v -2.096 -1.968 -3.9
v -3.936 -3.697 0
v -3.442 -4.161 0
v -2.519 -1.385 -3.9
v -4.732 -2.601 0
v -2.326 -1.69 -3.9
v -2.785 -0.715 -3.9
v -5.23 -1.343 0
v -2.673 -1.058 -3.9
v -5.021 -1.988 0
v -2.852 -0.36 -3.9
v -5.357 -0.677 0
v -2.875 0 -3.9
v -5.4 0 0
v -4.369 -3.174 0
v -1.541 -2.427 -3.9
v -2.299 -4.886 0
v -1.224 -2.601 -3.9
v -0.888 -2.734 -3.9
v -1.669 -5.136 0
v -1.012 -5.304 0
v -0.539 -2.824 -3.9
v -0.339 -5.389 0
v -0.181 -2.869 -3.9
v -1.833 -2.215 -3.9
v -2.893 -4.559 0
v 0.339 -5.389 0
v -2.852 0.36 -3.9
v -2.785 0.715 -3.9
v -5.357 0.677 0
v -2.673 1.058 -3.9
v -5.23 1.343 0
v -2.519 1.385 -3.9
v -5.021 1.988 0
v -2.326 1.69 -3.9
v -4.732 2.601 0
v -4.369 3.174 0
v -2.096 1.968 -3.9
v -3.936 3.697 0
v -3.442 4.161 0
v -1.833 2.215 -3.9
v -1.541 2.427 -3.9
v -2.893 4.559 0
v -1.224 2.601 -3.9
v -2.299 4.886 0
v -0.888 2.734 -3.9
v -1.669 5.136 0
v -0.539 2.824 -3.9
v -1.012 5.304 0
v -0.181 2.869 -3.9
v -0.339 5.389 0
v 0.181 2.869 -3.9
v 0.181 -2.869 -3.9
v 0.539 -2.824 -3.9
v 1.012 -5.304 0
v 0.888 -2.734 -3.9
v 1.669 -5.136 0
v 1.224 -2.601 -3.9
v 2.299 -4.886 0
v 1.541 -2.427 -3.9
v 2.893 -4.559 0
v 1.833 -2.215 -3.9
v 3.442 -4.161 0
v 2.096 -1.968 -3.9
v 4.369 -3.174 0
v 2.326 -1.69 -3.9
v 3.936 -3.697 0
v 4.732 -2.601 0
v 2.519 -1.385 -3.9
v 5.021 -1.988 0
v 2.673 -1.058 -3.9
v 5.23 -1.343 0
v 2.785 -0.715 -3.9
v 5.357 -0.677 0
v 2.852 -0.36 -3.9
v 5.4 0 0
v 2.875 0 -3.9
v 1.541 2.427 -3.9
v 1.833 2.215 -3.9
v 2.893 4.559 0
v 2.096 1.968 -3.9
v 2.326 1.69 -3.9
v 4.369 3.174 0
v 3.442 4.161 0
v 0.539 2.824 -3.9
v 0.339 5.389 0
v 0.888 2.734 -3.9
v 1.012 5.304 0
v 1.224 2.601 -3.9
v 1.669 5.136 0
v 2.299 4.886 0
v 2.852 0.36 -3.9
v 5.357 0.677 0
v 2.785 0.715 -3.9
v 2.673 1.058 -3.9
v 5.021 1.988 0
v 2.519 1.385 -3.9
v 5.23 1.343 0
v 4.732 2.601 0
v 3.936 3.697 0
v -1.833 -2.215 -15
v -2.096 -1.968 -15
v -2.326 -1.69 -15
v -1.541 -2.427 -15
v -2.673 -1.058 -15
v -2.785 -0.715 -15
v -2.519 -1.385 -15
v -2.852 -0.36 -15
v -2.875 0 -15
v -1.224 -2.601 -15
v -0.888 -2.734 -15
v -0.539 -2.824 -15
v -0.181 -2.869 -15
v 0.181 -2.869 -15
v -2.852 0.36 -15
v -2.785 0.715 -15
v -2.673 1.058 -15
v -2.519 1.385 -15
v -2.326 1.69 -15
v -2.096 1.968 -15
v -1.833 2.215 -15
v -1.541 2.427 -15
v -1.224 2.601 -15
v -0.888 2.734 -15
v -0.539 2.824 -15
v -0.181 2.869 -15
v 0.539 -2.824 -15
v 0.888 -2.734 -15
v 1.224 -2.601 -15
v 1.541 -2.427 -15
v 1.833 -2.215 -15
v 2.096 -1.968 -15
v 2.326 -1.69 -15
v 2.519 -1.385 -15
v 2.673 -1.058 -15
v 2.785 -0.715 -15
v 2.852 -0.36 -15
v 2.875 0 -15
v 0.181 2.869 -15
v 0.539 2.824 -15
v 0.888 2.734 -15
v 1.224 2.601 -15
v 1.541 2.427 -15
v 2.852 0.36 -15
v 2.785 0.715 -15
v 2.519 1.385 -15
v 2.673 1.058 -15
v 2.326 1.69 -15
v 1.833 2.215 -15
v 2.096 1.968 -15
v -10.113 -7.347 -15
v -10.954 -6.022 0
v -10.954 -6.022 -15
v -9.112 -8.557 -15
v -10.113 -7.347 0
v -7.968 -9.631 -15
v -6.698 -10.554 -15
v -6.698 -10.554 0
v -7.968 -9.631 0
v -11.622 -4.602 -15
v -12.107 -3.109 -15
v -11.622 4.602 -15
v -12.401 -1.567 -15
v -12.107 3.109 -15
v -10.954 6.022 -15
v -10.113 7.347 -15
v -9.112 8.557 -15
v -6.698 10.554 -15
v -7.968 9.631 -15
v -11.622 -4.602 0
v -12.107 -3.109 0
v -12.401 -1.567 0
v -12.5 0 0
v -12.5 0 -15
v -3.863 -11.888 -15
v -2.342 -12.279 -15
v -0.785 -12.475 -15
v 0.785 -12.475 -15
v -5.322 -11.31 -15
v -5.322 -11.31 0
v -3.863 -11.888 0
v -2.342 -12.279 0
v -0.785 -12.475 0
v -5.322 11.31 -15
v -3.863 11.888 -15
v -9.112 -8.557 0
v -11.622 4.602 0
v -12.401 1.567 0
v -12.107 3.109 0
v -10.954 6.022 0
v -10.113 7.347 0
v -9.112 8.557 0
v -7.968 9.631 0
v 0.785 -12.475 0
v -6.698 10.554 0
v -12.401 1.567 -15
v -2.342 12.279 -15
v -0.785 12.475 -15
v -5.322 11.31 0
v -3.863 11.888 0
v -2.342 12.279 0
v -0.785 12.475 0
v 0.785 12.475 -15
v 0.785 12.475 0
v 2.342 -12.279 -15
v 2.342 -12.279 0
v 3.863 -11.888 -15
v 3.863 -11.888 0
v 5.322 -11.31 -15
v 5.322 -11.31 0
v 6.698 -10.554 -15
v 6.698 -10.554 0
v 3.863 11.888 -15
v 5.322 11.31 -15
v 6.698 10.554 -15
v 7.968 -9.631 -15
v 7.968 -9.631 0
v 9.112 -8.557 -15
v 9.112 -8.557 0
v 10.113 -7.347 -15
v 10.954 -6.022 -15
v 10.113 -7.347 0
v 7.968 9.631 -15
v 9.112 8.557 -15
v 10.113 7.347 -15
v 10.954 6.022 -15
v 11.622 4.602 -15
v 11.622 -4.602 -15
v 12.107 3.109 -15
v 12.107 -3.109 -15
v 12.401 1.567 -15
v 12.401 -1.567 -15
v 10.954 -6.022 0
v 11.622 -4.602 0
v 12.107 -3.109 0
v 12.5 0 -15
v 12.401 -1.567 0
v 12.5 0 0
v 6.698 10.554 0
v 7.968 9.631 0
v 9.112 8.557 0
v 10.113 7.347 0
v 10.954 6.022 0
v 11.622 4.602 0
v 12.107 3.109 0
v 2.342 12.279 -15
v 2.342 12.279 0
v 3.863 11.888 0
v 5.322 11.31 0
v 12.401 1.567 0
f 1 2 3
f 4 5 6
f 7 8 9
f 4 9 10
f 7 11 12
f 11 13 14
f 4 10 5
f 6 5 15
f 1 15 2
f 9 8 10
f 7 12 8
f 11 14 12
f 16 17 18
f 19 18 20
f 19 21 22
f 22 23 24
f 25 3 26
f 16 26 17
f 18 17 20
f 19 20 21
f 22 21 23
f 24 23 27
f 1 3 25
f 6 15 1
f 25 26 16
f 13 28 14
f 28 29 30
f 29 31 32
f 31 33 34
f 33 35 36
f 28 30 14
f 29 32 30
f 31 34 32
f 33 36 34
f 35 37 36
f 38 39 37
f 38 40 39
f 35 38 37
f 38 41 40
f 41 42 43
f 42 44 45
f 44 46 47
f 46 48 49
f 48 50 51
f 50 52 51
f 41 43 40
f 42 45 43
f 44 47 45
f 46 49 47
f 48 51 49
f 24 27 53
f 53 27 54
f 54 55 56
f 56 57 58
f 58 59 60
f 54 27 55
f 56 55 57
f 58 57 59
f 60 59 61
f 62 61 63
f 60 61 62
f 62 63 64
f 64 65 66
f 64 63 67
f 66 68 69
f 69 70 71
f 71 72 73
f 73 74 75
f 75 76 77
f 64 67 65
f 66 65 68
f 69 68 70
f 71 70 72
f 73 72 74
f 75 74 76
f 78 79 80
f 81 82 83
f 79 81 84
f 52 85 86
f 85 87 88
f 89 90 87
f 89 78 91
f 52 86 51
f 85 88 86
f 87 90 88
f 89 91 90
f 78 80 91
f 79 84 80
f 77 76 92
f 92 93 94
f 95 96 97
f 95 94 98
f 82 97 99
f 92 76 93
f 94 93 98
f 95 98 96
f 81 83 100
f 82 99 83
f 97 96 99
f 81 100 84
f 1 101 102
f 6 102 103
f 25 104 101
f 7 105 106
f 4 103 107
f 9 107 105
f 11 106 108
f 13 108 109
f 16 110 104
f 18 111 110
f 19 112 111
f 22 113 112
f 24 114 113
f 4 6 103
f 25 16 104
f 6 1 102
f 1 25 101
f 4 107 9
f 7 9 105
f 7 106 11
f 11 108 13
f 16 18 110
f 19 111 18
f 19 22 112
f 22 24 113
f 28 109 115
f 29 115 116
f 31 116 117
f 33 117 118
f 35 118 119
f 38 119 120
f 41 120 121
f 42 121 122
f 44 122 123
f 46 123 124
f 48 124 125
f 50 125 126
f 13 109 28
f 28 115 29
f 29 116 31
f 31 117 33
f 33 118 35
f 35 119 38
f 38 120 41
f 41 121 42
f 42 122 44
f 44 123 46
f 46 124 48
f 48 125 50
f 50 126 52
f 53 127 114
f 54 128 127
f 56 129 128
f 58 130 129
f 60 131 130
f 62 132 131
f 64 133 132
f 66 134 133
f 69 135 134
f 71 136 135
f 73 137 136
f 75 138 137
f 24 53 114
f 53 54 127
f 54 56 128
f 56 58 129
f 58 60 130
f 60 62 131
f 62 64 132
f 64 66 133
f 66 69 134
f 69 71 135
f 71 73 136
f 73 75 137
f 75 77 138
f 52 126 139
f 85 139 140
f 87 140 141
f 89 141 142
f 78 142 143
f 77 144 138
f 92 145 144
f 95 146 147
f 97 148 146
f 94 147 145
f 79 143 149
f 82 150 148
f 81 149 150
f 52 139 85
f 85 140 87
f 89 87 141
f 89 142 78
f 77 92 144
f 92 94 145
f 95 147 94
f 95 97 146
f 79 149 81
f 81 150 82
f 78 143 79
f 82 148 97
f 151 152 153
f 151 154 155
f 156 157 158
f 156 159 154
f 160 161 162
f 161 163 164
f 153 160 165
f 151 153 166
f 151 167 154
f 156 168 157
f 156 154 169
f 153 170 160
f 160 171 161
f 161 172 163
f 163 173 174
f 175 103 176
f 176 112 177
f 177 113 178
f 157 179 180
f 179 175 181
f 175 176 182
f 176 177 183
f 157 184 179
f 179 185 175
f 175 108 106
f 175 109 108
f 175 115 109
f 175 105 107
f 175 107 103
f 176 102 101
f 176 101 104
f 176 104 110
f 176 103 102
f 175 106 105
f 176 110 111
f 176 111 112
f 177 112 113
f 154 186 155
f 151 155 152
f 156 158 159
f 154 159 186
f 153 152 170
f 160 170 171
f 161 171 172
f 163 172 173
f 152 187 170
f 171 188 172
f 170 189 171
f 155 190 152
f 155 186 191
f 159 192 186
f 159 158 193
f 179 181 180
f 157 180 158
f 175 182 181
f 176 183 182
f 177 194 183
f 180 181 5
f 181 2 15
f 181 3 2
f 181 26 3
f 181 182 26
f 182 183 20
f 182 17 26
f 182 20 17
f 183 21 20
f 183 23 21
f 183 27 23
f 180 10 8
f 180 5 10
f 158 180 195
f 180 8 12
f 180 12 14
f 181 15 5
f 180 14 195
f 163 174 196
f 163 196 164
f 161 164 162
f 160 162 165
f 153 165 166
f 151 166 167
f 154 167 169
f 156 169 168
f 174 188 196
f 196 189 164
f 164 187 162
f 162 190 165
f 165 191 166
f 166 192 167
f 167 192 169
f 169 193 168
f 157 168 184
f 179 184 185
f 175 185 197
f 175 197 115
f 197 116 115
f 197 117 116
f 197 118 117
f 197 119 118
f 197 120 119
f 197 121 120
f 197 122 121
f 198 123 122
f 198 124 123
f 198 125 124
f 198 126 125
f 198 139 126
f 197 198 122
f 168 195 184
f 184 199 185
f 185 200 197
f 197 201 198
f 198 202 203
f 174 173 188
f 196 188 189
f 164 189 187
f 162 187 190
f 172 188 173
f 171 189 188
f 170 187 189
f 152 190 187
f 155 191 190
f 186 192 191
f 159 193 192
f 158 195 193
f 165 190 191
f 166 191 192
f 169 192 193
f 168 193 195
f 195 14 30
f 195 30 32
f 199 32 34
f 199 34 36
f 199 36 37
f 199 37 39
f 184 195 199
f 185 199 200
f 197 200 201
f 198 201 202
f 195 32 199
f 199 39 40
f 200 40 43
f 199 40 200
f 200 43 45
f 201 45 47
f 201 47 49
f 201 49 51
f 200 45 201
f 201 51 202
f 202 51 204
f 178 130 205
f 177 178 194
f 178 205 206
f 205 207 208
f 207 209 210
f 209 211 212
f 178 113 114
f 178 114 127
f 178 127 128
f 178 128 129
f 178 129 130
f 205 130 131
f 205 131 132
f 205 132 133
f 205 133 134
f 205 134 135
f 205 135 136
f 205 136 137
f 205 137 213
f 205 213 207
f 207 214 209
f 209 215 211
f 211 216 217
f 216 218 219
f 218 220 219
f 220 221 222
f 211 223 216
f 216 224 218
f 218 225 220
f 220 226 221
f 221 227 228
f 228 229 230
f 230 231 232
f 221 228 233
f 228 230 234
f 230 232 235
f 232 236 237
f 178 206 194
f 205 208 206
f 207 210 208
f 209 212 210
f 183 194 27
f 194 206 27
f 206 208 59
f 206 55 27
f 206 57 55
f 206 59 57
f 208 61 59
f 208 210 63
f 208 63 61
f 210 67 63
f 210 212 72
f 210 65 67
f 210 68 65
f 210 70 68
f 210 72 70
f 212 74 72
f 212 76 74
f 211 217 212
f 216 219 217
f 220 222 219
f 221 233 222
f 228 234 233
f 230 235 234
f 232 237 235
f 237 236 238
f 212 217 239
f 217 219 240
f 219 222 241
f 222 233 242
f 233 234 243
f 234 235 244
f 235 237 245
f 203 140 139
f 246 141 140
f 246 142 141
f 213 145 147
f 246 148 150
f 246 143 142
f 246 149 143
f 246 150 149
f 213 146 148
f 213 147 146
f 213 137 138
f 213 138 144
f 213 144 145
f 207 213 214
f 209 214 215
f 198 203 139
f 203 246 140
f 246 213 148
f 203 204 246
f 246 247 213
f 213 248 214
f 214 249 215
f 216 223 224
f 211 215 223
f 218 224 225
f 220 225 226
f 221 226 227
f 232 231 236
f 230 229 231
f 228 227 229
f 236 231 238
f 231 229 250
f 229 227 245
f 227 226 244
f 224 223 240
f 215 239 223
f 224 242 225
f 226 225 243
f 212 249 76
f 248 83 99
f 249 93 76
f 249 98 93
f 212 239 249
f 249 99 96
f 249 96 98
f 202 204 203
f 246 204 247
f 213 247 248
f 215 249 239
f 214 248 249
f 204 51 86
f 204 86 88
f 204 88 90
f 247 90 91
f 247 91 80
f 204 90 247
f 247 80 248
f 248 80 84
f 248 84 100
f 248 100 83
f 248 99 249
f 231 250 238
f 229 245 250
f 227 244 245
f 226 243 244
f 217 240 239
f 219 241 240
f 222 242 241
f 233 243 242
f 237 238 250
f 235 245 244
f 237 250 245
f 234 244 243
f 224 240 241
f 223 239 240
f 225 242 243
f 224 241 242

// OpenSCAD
$fn = 50;

difference() {
	union() {
		translate(v = [0, 0, -15.0]) {
			cylinder(h = 15, r = 12.5);
		}
		#translate(v = [0, 0, -18.0]) {
			cylinder(h = 18, r = 2.875);
		}
	}
	union() {
		translate(v = [0, 0, 0]) {
			rotate(a = [0, 0, 0]) {
				difference() {
					union() {
						translate(v = [0, 0, -18.0]) {
							cylinder(h = 18, r = 2.6);
						}
						translate(v = [0, 0, -3.9]) {
							cylinder(h = 3.9, r1 = 2.875, r2 = 5.4);
						}
						translate(v = [0, 0, -18.0]) {
							cylinder(h = 18, r = 2.875);
						}
						translate(v = [0, 0, -18.0]) {
							cylinder(h = 18, r = 2.6);
						}
					}
					union();
				}
			}
		}
	}
}
